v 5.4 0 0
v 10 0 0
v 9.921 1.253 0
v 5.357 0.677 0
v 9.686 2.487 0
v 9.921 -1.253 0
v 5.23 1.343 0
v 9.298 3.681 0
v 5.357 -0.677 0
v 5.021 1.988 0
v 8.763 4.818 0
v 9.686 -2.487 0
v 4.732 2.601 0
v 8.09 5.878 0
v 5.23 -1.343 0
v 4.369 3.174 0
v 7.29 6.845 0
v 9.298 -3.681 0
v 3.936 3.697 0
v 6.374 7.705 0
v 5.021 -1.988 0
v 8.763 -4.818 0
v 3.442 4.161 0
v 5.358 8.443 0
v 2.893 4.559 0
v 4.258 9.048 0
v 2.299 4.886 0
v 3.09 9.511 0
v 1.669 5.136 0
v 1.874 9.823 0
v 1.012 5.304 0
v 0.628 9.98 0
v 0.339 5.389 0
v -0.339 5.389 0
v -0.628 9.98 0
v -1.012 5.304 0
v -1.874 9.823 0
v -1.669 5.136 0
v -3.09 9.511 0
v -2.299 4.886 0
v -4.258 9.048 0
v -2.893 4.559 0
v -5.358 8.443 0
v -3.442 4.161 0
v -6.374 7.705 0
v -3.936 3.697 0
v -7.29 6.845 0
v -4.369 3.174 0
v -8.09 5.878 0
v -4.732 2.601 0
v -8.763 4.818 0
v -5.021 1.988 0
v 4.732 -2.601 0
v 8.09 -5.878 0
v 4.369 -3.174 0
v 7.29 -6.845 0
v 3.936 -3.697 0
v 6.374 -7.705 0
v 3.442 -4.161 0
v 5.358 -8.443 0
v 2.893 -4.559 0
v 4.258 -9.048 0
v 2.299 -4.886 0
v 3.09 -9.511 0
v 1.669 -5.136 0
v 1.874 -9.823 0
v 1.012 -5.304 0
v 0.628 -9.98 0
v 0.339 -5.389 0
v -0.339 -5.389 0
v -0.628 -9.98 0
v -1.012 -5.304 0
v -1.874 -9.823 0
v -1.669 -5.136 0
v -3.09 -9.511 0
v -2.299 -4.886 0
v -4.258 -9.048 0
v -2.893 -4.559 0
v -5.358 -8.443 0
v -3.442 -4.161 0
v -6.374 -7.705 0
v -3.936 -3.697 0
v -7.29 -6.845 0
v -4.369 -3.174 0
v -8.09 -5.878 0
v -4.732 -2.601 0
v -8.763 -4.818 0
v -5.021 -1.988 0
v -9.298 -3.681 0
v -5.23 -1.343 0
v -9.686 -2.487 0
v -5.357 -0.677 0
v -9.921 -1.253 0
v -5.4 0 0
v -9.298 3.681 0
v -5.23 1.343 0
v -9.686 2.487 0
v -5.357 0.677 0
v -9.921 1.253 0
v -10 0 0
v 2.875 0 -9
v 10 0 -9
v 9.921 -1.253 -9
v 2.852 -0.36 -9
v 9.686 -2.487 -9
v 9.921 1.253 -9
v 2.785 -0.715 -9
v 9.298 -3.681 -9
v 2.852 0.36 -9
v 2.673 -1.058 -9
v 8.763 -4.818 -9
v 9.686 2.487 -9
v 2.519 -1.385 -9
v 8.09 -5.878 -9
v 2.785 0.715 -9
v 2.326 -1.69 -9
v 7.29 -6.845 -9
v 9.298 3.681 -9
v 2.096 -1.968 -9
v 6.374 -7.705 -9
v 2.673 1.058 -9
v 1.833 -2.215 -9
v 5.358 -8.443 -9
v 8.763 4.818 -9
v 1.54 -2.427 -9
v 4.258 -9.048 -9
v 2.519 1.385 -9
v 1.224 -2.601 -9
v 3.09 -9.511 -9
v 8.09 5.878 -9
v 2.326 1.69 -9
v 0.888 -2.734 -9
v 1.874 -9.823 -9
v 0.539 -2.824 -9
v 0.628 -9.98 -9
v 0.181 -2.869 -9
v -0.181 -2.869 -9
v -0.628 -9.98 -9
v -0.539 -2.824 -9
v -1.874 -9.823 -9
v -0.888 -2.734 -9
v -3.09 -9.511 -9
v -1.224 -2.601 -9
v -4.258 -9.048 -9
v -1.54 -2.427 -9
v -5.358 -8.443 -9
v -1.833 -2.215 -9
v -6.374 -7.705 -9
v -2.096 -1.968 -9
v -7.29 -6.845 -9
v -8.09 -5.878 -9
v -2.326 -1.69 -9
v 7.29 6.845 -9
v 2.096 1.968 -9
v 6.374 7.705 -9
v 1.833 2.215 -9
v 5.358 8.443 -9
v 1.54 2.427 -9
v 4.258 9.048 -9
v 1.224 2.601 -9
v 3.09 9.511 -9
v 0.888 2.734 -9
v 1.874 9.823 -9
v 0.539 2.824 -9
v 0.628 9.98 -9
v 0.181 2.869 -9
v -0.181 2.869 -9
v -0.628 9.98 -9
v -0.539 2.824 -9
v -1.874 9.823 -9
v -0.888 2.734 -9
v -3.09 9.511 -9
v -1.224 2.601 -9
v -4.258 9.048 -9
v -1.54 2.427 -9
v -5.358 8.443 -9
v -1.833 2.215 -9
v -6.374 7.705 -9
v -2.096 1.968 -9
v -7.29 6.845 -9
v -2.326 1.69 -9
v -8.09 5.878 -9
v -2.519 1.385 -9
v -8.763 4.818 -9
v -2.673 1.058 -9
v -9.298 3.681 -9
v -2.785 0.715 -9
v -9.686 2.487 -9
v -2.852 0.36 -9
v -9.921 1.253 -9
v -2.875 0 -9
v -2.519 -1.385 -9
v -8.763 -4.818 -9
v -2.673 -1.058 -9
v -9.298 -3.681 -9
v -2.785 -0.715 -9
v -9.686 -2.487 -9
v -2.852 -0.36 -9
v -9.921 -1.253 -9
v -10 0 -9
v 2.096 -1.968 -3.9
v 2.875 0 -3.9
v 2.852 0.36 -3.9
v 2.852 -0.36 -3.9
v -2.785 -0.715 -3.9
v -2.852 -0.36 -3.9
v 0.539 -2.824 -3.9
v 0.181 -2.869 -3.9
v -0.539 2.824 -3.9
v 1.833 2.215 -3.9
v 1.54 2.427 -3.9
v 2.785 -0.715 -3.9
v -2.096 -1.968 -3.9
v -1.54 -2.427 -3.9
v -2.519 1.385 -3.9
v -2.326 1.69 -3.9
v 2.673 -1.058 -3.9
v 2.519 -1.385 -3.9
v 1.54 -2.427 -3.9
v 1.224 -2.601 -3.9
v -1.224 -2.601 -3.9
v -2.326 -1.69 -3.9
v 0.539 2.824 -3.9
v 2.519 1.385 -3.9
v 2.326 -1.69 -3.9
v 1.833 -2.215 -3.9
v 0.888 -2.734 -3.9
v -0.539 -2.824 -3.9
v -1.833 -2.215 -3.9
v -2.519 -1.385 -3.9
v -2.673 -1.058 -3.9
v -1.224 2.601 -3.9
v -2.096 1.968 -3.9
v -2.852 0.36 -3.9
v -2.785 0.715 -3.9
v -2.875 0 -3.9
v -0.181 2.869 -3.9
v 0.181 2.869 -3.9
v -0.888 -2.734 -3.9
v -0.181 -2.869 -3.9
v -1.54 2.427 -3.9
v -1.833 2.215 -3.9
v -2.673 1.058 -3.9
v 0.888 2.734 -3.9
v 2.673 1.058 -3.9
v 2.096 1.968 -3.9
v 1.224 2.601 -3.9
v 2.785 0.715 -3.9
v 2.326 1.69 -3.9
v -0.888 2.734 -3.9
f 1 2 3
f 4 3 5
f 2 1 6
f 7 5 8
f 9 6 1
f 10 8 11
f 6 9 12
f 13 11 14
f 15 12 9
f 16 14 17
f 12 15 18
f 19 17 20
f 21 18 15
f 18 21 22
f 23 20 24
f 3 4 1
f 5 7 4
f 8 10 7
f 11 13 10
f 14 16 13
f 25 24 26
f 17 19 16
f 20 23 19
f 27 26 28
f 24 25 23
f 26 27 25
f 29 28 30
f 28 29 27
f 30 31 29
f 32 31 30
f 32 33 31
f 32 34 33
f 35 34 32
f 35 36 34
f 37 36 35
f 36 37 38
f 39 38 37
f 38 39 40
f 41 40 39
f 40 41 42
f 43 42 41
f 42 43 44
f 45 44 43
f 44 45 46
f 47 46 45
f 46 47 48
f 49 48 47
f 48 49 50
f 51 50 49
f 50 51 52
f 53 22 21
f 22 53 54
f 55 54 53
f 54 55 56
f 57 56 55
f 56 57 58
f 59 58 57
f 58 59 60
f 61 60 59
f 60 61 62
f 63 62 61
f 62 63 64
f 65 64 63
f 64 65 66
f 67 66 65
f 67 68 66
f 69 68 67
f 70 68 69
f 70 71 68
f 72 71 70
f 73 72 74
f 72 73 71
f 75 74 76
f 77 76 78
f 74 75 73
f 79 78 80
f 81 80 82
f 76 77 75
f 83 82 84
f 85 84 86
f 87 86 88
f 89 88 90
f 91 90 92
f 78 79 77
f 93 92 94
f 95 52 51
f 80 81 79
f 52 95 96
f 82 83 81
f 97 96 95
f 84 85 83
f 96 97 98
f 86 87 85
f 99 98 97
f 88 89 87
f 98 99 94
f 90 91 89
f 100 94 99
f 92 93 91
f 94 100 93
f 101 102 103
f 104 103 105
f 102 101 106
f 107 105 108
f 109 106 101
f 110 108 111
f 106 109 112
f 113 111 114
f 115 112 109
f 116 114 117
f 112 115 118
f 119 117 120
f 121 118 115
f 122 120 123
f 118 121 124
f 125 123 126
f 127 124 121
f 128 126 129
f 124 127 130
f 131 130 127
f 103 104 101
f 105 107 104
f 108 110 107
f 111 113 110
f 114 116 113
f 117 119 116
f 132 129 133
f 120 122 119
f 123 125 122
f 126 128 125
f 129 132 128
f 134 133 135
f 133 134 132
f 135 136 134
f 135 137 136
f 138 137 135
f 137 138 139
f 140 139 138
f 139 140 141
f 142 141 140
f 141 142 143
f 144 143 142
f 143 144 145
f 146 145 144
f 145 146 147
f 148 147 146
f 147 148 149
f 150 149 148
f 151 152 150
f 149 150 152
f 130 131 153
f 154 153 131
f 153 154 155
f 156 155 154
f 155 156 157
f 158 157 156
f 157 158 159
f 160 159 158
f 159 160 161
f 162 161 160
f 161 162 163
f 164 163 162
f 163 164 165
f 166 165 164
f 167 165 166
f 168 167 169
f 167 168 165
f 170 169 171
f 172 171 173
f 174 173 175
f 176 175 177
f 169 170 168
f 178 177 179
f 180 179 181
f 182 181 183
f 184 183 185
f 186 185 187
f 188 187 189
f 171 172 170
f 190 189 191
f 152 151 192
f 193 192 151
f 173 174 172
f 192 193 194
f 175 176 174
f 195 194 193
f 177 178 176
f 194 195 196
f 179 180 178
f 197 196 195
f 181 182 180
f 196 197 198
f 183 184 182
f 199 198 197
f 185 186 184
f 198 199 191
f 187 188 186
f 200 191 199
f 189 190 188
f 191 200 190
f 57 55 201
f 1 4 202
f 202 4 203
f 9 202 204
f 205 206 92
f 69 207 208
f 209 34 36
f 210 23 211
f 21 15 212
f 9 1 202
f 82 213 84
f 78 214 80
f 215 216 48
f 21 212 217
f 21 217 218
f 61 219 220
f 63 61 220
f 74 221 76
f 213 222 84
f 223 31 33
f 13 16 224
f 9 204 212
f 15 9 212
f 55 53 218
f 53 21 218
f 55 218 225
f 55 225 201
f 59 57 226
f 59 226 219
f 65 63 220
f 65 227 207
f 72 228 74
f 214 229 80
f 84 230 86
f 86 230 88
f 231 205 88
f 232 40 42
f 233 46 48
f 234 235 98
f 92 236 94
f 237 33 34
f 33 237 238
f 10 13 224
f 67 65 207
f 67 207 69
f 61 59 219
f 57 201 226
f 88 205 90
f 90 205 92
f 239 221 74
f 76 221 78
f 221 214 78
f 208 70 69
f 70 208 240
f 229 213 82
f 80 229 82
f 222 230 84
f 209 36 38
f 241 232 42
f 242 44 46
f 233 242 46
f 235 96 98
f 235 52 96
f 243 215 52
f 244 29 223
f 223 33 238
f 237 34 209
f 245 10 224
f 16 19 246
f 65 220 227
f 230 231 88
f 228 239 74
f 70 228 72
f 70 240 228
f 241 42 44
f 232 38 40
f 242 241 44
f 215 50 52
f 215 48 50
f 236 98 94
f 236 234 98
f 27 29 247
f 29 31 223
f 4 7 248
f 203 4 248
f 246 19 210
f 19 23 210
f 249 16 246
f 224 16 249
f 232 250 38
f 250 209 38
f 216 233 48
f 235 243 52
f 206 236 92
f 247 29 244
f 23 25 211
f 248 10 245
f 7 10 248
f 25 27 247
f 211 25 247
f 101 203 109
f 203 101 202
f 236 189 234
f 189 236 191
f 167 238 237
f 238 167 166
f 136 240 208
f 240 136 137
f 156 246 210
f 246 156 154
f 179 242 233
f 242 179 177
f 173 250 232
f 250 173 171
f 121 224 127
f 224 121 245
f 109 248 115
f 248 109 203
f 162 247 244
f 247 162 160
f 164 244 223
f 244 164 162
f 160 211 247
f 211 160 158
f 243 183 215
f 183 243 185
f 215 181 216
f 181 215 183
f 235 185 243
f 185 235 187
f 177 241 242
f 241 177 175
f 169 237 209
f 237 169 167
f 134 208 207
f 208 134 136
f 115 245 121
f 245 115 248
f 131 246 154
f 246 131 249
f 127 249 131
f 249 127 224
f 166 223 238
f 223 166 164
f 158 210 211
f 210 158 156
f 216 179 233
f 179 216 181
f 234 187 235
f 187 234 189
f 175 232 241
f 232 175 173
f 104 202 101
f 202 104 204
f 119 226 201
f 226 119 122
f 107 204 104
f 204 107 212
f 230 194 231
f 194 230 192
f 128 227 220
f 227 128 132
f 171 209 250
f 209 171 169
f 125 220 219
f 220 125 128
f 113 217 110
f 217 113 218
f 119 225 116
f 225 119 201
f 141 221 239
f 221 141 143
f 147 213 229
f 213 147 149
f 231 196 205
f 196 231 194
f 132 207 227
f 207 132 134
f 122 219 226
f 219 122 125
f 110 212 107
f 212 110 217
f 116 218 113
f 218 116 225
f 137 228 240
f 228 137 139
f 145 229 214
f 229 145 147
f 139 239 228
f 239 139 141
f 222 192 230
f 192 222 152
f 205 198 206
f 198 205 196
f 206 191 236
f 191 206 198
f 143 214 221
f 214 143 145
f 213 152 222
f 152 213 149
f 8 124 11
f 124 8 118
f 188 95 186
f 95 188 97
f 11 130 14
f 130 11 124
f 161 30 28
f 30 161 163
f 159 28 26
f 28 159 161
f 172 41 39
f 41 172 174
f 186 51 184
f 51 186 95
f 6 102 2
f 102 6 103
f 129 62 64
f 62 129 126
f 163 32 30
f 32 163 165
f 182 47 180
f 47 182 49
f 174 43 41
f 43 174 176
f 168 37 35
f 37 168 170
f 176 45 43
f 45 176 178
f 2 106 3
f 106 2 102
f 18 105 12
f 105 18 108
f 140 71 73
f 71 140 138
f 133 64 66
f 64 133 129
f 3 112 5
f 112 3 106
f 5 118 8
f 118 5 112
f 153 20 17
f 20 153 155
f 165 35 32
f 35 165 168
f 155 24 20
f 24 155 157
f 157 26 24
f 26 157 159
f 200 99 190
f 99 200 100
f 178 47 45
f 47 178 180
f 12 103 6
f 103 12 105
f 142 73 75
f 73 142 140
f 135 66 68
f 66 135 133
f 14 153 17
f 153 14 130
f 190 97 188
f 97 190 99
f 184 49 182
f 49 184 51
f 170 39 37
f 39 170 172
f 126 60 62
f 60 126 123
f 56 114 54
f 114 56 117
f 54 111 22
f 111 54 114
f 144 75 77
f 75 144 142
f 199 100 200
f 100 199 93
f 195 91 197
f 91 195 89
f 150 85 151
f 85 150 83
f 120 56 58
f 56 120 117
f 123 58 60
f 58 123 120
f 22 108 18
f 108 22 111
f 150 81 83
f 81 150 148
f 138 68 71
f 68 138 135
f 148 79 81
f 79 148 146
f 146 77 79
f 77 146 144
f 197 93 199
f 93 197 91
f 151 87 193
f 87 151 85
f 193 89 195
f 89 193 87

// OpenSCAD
$fn = 50;


difference() {
	union() {
		translate(v = [0, 0, -9.0000000000]) {
			cylinder(h = 9, r = 10.0000000000);
		}
		cylinder(h = 0, r = 16.0000000000);
	}
	union() {
		translate(v = [0, 0, 0]) {
			rotate(a = [0, 0, 0]) {
				difference() {
					union() {
						#translate(v = [0, 0, -9.0000000000]) {
							cylinder(h = 9, r = 2.6000000000);
						}
						#translate(v = [0, 0, -3.9000000000]) {
							cylinder(h = 3.9000000000, r1 = 2.8750000000, r2 = 5.4000000000);
						}
						#translate(v = [0, 0, -9.0000000000]) {
							cylinder(h = 9, r = 2.8750000000);
						}
						#translate(v = [0, 0, -9.0000000000]) {
							cylinder(h = 9, r = 2.6000000000);
						}
					}
					union();
				}
			}
		}
	}
}
